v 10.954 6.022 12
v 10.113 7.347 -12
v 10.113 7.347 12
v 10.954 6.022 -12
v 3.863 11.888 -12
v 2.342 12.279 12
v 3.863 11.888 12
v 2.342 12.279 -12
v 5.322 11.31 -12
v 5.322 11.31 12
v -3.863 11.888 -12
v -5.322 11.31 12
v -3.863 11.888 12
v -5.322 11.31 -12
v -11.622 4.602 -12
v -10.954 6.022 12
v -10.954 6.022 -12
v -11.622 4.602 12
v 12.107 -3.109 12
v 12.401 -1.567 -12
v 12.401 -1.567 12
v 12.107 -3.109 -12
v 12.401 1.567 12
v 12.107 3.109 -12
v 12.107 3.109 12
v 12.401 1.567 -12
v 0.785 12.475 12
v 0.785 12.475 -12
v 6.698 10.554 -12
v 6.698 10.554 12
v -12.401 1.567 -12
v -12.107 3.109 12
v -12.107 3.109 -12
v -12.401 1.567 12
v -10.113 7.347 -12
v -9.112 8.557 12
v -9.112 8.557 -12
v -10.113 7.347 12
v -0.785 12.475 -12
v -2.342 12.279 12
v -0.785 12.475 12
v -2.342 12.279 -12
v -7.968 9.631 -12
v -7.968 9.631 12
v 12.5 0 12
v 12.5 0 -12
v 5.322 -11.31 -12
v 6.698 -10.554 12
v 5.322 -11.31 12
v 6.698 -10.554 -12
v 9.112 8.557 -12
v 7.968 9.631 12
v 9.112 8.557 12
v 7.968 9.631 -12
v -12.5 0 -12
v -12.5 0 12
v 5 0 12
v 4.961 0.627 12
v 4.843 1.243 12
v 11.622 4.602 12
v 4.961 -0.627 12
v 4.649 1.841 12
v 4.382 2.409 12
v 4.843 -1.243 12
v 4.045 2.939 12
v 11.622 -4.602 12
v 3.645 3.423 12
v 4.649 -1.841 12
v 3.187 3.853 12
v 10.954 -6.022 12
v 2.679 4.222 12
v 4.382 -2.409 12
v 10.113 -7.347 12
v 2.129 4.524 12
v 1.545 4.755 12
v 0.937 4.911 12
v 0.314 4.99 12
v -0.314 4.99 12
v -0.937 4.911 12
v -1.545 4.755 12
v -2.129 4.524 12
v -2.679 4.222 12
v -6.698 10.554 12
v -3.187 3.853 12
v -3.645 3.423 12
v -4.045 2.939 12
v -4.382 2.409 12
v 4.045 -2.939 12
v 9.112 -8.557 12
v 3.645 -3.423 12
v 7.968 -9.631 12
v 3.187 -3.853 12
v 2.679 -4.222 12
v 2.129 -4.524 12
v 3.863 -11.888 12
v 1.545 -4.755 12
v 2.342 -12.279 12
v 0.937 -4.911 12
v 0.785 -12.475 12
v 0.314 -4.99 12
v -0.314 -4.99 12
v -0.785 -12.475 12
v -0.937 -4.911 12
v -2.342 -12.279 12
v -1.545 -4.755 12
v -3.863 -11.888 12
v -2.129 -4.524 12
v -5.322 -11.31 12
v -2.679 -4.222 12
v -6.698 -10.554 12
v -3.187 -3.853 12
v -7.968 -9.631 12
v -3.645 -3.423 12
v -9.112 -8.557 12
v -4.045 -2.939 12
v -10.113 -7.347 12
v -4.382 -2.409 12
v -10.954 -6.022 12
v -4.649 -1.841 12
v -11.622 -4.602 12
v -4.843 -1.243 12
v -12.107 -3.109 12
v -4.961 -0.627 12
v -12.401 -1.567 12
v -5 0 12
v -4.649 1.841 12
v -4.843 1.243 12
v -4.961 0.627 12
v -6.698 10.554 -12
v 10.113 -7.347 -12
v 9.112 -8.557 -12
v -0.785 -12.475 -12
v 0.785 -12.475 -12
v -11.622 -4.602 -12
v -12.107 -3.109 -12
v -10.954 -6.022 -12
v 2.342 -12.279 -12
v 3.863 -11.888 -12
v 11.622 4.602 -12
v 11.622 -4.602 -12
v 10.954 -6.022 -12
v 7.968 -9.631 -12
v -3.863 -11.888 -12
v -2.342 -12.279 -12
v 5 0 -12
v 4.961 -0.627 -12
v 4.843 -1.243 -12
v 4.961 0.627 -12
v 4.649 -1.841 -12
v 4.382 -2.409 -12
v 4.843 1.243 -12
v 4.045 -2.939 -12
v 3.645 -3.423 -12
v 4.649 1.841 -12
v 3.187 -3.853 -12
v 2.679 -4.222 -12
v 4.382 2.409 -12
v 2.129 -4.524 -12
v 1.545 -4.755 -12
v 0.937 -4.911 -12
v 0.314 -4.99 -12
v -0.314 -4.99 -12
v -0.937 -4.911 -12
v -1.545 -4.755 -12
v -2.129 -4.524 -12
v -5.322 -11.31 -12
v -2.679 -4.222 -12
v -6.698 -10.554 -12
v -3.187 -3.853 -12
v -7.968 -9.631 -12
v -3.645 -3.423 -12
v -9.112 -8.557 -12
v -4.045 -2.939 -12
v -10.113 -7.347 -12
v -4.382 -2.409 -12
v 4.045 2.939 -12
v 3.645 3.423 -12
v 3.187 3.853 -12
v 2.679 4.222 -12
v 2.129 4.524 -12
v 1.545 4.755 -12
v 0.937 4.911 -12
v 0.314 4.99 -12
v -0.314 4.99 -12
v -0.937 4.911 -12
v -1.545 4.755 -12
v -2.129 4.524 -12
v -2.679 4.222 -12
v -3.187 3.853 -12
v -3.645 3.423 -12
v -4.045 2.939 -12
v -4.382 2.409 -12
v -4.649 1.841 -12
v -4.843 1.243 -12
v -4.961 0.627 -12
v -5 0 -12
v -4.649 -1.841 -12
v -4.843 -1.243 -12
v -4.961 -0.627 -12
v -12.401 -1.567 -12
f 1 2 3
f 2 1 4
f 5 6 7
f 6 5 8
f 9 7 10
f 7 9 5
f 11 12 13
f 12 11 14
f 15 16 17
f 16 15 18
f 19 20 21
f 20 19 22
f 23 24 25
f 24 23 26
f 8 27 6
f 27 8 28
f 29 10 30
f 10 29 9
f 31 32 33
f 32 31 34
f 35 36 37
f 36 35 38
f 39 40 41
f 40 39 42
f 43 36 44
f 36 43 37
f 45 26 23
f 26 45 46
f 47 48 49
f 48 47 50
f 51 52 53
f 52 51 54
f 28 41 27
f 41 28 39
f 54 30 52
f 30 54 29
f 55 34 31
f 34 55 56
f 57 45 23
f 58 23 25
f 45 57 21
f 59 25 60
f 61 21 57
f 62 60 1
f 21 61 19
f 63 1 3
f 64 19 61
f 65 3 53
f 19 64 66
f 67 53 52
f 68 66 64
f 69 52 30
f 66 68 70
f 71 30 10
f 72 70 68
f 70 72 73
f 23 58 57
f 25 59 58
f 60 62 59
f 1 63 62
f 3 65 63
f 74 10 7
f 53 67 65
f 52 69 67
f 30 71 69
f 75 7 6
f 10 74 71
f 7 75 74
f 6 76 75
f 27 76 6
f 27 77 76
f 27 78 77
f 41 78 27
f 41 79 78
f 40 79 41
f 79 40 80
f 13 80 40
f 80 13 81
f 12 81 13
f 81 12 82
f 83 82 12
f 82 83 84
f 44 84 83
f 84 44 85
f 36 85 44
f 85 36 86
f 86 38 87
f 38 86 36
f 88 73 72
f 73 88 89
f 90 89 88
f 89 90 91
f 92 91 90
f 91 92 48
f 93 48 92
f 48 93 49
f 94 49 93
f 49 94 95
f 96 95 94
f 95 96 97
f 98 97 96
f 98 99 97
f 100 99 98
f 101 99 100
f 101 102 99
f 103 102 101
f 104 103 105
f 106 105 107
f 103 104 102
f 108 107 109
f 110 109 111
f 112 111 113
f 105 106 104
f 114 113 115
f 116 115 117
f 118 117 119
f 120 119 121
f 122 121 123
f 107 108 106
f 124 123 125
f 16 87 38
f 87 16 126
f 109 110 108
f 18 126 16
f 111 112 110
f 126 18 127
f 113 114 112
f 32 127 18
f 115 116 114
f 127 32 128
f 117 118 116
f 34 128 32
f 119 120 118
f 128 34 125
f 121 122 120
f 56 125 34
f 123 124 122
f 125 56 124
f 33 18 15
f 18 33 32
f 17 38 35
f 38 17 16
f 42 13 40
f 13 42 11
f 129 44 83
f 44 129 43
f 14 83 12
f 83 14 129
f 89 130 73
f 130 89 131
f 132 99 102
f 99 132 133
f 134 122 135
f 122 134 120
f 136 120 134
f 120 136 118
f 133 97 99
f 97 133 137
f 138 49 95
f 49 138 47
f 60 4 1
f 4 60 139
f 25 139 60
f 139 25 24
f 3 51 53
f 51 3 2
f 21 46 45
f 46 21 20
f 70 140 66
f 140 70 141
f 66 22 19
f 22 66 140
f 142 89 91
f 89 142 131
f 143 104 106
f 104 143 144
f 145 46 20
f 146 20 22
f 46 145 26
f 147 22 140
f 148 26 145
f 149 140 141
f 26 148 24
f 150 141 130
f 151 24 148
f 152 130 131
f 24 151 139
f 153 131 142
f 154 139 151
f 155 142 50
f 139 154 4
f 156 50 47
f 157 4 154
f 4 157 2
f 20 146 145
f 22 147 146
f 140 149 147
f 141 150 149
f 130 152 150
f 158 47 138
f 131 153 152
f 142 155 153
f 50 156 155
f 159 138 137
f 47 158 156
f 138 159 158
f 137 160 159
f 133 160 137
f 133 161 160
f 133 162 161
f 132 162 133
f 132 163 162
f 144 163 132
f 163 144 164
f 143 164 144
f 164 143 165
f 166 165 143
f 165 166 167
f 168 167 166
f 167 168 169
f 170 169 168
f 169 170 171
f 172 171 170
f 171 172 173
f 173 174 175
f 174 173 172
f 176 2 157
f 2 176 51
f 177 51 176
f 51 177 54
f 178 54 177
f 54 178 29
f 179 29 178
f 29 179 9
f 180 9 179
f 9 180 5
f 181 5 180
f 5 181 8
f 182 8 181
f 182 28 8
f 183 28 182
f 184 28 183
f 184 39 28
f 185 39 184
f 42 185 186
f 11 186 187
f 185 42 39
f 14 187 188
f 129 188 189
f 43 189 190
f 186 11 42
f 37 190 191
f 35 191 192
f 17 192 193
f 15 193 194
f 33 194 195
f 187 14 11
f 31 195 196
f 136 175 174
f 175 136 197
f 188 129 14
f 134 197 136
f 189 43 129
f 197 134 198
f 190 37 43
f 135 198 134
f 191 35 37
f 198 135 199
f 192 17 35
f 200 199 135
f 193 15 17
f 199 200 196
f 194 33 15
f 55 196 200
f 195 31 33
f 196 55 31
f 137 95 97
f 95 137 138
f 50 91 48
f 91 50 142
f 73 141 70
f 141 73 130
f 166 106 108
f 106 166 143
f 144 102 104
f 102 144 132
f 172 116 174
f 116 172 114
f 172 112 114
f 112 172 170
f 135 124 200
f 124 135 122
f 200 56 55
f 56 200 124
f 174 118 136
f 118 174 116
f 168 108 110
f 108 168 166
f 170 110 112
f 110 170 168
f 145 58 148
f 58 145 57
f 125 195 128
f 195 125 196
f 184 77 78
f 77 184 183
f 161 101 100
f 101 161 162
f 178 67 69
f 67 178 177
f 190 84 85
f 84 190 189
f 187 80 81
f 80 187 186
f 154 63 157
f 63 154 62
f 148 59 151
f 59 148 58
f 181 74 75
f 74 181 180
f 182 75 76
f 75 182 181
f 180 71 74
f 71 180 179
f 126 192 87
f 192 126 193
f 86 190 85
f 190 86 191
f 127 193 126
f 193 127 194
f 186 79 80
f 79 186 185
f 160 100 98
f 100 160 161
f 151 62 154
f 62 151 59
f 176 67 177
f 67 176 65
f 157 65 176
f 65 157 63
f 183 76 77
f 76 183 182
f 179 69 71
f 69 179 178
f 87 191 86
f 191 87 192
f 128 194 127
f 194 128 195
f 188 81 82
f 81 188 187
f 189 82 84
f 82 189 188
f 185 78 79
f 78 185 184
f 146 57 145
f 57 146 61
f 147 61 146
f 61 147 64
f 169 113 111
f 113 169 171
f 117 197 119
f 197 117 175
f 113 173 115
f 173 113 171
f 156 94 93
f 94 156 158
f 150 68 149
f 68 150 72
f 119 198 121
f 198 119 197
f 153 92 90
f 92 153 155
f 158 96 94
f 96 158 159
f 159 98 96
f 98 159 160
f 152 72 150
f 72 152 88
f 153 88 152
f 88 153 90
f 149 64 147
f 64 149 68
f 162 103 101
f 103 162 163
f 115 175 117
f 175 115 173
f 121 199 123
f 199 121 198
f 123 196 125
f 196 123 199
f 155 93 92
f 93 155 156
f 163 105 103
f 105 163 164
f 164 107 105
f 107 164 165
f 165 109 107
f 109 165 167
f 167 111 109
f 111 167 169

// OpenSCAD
$fn = 50;


difference() {
	union() {
		translate(v = [0, 0, -12.0000000000]) {
			cylinder(h = 24, r = 12.5000000000);
		}
	}
	union() {
		translate(v = [0, 0, -100.0000000000]) {
			cylinder(h = 200, r = 5);
		}
	}
}
